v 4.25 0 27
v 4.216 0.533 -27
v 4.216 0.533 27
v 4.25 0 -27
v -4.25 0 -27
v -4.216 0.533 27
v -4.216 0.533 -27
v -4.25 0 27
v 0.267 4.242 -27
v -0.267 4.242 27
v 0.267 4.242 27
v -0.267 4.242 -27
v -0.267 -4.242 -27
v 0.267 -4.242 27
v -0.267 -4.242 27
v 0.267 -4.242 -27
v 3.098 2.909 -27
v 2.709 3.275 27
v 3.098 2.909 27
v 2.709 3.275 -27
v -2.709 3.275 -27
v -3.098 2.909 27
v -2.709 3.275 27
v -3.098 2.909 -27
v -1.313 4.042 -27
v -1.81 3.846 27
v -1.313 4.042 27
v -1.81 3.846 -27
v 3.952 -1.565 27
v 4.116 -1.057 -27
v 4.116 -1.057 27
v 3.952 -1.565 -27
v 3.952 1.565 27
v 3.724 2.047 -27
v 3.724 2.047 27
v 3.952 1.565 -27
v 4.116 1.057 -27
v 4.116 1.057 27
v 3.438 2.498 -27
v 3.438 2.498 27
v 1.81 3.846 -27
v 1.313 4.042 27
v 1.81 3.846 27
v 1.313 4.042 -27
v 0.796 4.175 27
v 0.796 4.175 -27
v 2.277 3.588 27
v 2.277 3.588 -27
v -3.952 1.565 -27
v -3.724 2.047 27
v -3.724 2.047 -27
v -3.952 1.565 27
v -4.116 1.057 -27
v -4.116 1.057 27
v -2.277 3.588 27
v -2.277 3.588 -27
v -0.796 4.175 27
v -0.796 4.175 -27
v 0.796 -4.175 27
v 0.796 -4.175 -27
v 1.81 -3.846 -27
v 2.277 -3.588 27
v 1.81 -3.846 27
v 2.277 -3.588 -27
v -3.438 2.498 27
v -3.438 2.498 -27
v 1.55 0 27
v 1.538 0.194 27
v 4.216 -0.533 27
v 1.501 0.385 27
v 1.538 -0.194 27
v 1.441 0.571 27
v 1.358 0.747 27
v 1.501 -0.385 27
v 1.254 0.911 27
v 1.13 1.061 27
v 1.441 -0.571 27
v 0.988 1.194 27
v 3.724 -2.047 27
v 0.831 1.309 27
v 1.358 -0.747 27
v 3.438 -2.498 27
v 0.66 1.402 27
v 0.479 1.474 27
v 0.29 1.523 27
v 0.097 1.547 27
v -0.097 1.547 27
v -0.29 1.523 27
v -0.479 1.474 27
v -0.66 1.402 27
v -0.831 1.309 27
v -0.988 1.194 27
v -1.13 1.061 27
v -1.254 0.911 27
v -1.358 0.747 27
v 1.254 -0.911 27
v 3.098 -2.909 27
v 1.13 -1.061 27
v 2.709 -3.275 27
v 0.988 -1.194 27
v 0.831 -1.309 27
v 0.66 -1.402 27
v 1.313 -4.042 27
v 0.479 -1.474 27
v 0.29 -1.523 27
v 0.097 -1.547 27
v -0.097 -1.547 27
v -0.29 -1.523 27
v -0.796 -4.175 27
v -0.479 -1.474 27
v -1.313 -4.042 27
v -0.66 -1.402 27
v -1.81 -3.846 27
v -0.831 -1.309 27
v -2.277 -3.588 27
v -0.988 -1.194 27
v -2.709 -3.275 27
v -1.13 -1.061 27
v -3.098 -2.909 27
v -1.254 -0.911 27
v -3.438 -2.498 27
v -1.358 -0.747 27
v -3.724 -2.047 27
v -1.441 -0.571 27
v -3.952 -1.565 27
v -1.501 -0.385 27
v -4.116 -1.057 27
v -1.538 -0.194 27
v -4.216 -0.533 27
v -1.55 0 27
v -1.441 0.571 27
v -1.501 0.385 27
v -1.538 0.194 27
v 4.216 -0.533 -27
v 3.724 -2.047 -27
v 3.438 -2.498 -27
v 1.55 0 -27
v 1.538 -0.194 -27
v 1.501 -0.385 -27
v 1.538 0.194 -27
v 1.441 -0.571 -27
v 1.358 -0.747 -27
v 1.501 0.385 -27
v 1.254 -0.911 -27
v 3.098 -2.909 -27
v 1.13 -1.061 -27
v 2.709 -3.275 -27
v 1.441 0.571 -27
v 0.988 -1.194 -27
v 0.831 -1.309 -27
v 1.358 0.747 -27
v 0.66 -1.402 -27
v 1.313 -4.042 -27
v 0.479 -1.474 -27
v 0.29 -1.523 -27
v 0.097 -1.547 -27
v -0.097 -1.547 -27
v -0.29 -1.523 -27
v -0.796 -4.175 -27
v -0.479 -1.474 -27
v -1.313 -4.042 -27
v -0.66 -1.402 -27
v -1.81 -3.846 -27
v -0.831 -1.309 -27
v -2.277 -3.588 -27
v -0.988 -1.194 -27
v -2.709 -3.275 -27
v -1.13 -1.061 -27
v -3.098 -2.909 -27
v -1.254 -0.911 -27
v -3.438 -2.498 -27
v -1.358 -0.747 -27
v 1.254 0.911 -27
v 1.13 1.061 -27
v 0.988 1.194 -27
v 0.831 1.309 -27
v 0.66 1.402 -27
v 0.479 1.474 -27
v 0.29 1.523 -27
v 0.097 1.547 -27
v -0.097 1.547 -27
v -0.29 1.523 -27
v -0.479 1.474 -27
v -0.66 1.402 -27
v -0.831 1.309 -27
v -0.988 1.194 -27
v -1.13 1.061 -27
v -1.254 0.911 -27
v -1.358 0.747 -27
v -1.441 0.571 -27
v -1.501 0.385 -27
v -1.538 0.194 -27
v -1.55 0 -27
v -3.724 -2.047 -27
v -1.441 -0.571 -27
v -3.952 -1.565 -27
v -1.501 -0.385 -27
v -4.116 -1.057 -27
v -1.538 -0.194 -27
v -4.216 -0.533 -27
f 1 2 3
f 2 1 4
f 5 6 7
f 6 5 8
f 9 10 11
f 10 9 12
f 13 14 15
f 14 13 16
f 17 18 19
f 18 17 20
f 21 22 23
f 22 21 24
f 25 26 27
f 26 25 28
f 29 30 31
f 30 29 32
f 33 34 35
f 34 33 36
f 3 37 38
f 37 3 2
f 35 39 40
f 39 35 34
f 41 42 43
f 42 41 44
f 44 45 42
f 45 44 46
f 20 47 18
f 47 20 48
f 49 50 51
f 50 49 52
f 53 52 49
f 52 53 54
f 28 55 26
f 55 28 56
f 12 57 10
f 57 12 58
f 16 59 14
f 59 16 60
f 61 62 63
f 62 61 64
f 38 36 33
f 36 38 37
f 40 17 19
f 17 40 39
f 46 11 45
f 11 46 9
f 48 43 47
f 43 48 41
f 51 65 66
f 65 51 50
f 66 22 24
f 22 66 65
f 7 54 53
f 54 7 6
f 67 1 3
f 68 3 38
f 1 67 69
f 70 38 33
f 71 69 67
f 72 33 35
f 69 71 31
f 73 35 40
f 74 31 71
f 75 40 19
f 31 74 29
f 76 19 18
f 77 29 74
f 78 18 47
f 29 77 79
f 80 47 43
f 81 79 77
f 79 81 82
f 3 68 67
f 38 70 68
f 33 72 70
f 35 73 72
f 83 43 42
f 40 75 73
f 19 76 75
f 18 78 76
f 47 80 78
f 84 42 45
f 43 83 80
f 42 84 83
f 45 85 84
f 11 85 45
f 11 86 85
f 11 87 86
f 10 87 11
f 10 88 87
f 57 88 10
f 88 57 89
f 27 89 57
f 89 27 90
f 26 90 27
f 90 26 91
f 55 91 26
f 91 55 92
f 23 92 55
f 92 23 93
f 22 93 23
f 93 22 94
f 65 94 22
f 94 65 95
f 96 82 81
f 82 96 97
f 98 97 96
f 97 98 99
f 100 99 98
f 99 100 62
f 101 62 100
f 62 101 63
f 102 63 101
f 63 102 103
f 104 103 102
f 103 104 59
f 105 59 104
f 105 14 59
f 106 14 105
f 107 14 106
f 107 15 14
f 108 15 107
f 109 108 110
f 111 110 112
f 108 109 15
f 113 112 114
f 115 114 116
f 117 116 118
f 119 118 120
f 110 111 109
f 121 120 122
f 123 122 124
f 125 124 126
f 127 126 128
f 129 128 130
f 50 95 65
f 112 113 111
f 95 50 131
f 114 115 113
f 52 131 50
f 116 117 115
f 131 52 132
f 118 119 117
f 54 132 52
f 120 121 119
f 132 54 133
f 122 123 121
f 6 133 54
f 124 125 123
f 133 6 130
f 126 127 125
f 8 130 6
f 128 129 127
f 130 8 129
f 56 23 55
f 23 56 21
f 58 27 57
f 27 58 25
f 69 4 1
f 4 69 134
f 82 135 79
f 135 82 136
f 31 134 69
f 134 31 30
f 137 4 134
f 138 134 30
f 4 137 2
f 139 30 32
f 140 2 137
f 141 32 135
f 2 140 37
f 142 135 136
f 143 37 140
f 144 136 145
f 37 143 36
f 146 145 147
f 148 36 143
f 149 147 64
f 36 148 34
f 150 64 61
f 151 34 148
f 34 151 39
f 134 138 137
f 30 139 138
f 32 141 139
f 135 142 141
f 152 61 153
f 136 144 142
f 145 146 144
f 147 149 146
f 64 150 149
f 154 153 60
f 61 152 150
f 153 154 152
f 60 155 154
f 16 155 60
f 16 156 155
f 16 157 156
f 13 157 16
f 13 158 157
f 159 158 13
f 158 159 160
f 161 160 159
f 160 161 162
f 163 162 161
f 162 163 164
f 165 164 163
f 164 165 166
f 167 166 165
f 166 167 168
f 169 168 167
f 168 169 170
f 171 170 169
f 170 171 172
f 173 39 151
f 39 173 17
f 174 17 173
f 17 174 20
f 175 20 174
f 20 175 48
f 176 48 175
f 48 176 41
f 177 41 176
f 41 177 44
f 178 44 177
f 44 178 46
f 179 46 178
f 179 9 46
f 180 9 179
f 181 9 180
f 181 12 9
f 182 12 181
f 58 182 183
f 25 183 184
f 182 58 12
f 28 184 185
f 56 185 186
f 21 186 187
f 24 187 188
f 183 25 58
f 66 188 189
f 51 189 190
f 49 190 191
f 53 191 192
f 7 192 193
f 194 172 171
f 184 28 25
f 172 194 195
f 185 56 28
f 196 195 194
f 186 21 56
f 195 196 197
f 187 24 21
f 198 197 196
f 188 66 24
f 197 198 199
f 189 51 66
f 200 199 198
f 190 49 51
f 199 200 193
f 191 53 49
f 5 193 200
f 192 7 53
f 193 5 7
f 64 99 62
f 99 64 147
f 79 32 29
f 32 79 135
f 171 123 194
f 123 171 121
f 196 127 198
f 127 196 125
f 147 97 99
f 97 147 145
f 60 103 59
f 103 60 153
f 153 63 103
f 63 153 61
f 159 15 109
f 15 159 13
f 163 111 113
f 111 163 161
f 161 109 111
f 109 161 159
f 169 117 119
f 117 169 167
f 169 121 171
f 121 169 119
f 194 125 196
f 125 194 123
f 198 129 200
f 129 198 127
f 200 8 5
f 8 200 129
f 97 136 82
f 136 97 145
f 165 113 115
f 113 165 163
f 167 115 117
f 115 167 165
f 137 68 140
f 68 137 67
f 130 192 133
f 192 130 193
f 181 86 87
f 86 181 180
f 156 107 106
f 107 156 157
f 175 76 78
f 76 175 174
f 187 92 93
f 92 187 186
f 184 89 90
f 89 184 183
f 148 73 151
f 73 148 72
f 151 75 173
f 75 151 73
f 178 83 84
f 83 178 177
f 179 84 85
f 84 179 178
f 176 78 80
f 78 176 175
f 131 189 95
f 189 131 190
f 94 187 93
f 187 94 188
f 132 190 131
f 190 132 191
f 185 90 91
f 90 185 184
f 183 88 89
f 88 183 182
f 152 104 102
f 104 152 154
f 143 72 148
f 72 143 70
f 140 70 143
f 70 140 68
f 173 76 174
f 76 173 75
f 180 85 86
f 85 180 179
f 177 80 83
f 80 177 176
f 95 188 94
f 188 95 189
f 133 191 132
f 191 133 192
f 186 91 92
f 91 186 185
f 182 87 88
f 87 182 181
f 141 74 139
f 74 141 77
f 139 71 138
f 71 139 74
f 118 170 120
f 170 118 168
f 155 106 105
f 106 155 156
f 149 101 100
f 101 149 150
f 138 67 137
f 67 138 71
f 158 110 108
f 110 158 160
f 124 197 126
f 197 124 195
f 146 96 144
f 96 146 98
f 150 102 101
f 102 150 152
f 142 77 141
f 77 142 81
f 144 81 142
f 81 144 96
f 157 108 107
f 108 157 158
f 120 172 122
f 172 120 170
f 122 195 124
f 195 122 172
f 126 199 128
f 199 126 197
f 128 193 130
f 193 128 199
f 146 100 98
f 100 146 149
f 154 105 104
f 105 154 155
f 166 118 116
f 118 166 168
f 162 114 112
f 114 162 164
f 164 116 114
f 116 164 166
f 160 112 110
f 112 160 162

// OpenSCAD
$fn = 50;


difference() {
	union() {
		translate(v = [0, 0, -27.0000000000]) {
			cylinder(h = 54, r = 4.2500000000);
		}
	}
	union() {
		translate(v = [0, 0, -100.0000000000]) {
			cylinder(h = 200, r = 1.5500000000);
		}
	}
}
